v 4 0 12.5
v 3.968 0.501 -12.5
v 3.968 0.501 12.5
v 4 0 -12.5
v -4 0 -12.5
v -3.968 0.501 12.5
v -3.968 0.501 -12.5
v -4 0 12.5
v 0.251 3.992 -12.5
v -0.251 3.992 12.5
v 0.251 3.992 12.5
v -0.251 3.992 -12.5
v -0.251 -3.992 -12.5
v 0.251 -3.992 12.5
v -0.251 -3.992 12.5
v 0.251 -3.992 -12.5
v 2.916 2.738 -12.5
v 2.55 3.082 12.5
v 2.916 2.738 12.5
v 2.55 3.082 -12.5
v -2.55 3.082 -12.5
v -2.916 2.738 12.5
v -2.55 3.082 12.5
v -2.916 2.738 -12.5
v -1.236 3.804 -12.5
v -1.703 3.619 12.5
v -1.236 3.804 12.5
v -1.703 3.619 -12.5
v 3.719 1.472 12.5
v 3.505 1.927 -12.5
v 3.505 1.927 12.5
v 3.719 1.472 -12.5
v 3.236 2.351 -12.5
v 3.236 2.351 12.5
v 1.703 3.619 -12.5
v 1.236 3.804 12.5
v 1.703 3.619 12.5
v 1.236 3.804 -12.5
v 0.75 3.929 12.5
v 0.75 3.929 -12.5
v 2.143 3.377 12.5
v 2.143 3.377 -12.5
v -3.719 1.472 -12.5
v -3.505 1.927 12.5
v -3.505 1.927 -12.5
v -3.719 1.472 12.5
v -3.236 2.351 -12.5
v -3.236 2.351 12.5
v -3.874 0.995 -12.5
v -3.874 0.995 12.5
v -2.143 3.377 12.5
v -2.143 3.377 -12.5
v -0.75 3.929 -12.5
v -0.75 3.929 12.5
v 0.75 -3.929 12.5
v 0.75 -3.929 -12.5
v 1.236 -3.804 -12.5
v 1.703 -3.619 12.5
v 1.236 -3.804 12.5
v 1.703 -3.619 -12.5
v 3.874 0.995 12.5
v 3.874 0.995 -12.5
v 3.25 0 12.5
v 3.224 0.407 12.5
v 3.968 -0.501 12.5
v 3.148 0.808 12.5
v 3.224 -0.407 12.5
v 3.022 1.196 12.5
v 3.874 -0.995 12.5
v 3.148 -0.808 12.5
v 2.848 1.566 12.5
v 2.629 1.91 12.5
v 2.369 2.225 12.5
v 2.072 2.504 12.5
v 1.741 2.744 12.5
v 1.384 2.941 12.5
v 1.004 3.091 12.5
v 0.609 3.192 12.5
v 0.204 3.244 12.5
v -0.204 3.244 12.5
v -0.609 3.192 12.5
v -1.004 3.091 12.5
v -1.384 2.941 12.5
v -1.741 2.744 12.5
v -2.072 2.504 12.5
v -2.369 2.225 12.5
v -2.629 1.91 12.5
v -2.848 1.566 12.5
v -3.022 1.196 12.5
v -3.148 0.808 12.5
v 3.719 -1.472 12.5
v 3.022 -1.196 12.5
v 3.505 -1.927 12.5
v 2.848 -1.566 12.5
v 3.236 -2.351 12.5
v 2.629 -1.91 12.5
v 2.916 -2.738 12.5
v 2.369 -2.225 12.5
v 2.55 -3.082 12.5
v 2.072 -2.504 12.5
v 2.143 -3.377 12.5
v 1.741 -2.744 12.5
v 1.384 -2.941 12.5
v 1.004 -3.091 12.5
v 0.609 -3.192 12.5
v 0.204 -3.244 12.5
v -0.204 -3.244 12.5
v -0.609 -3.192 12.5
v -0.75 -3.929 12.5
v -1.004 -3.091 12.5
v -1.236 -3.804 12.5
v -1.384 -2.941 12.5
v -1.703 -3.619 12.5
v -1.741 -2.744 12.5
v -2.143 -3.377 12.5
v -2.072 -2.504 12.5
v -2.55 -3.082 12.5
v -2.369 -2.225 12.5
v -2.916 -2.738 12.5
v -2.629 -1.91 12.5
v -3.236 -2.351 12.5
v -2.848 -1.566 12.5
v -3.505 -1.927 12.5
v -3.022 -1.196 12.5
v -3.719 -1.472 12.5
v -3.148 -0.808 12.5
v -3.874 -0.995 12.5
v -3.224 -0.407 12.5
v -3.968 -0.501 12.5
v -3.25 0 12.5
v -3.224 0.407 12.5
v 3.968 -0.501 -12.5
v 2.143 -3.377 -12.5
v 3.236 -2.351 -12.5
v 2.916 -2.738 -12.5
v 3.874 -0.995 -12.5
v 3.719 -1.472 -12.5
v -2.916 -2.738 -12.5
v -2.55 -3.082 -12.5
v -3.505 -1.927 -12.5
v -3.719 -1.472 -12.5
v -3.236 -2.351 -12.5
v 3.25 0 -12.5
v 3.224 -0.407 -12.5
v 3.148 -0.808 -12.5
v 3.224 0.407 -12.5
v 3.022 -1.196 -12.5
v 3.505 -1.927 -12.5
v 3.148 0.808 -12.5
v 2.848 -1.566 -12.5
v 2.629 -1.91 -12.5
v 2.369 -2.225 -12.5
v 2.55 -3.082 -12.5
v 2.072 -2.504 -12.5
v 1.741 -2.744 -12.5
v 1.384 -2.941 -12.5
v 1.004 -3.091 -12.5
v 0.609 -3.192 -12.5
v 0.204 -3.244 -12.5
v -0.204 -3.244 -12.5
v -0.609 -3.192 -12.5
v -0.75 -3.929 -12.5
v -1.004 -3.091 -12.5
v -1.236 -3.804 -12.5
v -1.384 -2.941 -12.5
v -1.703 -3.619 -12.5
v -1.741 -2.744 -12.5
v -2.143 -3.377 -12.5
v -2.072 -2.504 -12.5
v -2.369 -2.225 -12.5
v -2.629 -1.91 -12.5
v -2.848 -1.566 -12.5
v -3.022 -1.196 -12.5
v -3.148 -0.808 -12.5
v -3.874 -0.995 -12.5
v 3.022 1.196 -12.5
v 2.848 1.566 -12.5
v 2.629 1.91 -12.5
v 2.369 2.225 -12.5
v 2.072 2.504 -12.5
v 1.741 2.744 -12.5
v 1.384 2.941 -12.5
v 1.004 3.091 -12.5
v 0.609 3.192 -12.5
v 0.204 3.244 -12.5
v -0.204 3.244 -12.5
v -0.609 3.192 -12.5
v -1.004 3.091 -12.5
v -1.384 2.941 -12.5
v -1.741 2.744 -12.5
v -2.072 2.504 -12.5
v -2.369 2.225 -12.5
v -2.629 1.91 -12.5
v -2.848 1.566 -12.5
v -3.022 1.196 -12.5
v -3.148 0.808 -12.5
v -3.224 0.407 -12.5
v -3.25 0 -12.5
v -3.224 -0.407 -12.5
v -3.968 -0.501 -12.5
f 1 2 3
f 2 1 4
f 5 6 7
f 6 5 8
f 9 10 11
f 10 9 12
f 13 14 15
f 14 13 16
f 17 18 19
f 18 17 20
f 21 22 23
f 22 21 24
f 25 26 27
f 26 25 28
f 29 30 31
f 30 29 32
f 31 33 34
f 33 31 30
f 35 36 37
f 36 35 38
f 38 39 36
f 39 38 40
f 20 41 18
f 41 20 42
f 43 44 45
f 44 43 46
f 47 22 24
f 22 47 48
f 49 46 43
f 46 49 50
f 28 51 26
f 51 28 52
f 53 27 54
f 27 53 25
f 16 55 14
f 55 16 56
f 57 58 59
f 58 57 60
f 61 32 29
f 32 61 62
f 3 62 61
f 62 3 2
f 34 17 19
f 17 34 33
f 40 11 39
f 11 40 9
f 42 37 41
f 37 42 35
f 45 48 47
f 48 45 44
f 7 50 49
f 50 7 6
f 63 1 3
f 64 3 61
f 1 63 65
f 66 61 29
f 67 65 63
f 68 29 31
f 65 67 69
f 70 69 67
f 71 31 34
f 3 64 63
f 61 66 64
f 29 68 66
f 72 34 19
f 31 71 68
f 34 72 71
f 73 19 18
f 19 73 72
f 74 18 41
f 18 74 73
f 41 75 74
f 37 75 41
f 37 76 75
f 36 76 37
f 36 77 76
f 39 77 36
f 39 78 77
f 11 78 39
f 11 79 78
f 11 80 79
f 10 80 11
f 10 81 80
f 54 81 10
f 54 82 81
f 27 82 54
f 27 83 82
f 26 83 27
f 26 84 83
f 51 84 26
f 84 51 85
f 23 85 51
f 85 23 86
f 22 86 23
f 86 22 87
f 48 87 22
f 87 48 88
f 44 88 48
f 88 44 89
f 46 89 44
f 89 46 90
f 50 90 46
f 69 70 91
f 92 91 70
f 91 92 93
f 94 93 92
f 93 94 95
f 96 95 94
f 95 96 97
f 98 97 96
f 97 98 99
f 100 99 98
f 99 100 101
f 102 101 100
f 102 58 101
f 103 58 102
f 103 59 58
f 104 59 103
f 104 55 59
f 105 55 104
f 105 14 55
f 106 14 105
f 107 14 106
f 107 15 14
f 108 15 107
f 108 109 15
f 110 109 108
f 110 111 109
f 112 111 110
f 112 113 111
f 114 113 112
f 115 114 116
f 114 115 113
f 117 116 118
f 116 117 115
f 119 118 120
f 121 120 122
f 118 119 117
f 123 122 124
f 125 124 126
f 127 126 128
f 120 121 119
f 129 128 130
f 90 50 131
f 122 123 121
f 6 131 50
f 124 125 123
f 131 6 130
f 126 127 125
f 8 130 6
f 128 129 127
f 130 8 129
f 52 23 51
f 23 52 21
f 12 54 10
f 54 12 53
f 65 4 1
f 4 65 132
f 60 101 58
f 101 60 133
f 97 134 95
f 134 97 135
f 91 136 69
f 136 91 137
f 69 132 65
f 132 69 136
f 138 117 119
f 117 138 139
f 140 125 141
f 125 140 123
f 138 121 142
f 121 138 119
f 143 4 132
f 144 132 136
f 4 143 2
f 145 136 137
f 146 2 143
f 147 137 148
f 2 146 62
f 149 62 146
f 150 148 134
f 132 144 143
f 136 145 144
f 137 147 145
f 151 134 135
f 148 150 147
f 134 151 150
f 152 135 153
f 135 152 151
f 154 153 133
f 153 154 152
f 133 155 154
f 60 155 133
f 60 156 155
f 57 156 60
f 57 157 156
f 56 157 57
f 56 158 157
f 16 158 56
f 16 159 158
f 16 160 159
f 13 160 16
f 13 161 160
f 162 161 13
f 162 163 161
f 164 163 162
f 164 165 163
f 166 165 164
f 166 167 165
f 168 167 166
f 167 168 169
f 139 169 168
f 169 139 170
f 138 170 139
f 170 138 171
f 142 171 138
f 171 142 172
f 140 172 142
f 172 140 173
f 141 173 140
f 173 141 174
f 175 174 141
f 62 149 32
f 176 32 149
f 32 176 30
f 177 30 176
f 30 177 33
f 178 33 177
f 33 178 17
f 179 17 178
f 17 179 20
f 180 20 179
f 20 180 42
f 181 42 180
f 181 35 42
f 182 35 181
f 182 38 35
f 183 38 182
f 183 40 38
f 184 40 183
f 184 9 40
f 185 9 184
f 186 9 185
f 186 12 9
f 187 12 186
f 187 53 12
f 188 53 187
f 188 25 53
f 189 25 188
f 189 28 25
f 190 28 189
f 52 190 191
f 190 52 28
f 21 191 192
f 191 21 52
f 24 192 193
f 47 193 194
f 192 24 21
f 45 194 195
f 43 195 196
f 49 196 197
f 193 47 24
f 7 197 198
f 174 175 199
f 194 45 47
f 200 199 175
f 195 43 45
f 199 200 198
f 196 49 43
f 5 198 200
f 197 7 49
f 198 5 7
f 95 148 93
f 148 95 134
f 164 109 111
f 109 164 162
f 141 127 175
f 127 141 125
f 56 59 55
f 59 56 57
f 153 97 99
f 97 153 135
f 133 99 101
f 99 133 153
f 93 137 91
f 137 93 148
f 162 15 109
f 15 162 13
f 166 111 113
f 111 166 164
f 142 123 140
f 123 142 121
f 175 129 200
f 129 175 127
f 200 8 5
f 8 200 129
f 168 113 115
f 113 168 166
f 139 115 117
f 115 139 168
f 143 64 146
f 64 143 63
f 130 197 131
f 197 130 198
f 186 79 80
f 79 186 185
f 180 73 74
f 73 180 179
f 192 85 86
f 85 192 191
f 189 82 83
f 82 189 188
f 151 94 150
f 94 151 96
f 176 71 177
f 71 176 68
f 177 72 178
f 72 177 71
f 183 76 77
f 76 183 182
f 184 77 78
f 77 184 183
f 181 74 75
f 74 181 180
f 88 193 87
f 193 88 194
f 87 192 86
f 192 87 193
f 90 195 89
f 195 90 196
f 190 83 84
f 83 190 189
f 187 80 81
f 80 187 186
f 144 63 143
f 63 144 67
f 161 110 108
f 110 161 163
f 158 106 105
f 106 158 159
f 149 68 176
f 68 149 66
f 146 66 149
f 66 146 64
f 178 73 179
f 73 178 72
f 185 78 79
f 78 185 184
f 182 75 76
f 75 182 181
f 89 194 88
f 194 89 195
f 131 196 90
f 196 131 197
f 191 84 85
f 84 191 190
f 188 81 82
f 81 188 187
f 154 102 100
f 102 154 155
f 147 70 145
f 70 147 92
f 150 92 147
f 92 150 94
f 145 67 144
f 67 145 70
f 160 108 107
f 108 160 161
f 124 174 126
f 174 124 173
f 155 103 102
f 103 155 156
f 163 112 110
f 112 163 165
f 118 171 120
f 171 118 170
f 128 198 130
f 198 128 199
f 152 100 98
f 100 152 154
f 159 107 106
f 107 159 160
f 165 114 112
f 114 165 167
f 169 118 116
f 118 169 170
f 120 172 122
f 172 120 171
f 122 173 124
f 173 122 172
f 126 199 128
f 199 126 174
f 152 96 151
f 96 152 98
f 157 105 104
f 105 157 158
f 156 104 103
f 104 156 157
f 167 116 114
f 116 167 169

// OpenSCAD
$fn = 50;


difference() {
	union() {
		translate(v = [0, 0, -12.5000000000]) {
			cylinder(h = 25, r = 4.0000000000);
		}
	}
	union() {
		translate(v = [0, 0, -100.0000000000]) {
			cylinder(h = 200, r = 3.2500000000);
		}
	}
}
